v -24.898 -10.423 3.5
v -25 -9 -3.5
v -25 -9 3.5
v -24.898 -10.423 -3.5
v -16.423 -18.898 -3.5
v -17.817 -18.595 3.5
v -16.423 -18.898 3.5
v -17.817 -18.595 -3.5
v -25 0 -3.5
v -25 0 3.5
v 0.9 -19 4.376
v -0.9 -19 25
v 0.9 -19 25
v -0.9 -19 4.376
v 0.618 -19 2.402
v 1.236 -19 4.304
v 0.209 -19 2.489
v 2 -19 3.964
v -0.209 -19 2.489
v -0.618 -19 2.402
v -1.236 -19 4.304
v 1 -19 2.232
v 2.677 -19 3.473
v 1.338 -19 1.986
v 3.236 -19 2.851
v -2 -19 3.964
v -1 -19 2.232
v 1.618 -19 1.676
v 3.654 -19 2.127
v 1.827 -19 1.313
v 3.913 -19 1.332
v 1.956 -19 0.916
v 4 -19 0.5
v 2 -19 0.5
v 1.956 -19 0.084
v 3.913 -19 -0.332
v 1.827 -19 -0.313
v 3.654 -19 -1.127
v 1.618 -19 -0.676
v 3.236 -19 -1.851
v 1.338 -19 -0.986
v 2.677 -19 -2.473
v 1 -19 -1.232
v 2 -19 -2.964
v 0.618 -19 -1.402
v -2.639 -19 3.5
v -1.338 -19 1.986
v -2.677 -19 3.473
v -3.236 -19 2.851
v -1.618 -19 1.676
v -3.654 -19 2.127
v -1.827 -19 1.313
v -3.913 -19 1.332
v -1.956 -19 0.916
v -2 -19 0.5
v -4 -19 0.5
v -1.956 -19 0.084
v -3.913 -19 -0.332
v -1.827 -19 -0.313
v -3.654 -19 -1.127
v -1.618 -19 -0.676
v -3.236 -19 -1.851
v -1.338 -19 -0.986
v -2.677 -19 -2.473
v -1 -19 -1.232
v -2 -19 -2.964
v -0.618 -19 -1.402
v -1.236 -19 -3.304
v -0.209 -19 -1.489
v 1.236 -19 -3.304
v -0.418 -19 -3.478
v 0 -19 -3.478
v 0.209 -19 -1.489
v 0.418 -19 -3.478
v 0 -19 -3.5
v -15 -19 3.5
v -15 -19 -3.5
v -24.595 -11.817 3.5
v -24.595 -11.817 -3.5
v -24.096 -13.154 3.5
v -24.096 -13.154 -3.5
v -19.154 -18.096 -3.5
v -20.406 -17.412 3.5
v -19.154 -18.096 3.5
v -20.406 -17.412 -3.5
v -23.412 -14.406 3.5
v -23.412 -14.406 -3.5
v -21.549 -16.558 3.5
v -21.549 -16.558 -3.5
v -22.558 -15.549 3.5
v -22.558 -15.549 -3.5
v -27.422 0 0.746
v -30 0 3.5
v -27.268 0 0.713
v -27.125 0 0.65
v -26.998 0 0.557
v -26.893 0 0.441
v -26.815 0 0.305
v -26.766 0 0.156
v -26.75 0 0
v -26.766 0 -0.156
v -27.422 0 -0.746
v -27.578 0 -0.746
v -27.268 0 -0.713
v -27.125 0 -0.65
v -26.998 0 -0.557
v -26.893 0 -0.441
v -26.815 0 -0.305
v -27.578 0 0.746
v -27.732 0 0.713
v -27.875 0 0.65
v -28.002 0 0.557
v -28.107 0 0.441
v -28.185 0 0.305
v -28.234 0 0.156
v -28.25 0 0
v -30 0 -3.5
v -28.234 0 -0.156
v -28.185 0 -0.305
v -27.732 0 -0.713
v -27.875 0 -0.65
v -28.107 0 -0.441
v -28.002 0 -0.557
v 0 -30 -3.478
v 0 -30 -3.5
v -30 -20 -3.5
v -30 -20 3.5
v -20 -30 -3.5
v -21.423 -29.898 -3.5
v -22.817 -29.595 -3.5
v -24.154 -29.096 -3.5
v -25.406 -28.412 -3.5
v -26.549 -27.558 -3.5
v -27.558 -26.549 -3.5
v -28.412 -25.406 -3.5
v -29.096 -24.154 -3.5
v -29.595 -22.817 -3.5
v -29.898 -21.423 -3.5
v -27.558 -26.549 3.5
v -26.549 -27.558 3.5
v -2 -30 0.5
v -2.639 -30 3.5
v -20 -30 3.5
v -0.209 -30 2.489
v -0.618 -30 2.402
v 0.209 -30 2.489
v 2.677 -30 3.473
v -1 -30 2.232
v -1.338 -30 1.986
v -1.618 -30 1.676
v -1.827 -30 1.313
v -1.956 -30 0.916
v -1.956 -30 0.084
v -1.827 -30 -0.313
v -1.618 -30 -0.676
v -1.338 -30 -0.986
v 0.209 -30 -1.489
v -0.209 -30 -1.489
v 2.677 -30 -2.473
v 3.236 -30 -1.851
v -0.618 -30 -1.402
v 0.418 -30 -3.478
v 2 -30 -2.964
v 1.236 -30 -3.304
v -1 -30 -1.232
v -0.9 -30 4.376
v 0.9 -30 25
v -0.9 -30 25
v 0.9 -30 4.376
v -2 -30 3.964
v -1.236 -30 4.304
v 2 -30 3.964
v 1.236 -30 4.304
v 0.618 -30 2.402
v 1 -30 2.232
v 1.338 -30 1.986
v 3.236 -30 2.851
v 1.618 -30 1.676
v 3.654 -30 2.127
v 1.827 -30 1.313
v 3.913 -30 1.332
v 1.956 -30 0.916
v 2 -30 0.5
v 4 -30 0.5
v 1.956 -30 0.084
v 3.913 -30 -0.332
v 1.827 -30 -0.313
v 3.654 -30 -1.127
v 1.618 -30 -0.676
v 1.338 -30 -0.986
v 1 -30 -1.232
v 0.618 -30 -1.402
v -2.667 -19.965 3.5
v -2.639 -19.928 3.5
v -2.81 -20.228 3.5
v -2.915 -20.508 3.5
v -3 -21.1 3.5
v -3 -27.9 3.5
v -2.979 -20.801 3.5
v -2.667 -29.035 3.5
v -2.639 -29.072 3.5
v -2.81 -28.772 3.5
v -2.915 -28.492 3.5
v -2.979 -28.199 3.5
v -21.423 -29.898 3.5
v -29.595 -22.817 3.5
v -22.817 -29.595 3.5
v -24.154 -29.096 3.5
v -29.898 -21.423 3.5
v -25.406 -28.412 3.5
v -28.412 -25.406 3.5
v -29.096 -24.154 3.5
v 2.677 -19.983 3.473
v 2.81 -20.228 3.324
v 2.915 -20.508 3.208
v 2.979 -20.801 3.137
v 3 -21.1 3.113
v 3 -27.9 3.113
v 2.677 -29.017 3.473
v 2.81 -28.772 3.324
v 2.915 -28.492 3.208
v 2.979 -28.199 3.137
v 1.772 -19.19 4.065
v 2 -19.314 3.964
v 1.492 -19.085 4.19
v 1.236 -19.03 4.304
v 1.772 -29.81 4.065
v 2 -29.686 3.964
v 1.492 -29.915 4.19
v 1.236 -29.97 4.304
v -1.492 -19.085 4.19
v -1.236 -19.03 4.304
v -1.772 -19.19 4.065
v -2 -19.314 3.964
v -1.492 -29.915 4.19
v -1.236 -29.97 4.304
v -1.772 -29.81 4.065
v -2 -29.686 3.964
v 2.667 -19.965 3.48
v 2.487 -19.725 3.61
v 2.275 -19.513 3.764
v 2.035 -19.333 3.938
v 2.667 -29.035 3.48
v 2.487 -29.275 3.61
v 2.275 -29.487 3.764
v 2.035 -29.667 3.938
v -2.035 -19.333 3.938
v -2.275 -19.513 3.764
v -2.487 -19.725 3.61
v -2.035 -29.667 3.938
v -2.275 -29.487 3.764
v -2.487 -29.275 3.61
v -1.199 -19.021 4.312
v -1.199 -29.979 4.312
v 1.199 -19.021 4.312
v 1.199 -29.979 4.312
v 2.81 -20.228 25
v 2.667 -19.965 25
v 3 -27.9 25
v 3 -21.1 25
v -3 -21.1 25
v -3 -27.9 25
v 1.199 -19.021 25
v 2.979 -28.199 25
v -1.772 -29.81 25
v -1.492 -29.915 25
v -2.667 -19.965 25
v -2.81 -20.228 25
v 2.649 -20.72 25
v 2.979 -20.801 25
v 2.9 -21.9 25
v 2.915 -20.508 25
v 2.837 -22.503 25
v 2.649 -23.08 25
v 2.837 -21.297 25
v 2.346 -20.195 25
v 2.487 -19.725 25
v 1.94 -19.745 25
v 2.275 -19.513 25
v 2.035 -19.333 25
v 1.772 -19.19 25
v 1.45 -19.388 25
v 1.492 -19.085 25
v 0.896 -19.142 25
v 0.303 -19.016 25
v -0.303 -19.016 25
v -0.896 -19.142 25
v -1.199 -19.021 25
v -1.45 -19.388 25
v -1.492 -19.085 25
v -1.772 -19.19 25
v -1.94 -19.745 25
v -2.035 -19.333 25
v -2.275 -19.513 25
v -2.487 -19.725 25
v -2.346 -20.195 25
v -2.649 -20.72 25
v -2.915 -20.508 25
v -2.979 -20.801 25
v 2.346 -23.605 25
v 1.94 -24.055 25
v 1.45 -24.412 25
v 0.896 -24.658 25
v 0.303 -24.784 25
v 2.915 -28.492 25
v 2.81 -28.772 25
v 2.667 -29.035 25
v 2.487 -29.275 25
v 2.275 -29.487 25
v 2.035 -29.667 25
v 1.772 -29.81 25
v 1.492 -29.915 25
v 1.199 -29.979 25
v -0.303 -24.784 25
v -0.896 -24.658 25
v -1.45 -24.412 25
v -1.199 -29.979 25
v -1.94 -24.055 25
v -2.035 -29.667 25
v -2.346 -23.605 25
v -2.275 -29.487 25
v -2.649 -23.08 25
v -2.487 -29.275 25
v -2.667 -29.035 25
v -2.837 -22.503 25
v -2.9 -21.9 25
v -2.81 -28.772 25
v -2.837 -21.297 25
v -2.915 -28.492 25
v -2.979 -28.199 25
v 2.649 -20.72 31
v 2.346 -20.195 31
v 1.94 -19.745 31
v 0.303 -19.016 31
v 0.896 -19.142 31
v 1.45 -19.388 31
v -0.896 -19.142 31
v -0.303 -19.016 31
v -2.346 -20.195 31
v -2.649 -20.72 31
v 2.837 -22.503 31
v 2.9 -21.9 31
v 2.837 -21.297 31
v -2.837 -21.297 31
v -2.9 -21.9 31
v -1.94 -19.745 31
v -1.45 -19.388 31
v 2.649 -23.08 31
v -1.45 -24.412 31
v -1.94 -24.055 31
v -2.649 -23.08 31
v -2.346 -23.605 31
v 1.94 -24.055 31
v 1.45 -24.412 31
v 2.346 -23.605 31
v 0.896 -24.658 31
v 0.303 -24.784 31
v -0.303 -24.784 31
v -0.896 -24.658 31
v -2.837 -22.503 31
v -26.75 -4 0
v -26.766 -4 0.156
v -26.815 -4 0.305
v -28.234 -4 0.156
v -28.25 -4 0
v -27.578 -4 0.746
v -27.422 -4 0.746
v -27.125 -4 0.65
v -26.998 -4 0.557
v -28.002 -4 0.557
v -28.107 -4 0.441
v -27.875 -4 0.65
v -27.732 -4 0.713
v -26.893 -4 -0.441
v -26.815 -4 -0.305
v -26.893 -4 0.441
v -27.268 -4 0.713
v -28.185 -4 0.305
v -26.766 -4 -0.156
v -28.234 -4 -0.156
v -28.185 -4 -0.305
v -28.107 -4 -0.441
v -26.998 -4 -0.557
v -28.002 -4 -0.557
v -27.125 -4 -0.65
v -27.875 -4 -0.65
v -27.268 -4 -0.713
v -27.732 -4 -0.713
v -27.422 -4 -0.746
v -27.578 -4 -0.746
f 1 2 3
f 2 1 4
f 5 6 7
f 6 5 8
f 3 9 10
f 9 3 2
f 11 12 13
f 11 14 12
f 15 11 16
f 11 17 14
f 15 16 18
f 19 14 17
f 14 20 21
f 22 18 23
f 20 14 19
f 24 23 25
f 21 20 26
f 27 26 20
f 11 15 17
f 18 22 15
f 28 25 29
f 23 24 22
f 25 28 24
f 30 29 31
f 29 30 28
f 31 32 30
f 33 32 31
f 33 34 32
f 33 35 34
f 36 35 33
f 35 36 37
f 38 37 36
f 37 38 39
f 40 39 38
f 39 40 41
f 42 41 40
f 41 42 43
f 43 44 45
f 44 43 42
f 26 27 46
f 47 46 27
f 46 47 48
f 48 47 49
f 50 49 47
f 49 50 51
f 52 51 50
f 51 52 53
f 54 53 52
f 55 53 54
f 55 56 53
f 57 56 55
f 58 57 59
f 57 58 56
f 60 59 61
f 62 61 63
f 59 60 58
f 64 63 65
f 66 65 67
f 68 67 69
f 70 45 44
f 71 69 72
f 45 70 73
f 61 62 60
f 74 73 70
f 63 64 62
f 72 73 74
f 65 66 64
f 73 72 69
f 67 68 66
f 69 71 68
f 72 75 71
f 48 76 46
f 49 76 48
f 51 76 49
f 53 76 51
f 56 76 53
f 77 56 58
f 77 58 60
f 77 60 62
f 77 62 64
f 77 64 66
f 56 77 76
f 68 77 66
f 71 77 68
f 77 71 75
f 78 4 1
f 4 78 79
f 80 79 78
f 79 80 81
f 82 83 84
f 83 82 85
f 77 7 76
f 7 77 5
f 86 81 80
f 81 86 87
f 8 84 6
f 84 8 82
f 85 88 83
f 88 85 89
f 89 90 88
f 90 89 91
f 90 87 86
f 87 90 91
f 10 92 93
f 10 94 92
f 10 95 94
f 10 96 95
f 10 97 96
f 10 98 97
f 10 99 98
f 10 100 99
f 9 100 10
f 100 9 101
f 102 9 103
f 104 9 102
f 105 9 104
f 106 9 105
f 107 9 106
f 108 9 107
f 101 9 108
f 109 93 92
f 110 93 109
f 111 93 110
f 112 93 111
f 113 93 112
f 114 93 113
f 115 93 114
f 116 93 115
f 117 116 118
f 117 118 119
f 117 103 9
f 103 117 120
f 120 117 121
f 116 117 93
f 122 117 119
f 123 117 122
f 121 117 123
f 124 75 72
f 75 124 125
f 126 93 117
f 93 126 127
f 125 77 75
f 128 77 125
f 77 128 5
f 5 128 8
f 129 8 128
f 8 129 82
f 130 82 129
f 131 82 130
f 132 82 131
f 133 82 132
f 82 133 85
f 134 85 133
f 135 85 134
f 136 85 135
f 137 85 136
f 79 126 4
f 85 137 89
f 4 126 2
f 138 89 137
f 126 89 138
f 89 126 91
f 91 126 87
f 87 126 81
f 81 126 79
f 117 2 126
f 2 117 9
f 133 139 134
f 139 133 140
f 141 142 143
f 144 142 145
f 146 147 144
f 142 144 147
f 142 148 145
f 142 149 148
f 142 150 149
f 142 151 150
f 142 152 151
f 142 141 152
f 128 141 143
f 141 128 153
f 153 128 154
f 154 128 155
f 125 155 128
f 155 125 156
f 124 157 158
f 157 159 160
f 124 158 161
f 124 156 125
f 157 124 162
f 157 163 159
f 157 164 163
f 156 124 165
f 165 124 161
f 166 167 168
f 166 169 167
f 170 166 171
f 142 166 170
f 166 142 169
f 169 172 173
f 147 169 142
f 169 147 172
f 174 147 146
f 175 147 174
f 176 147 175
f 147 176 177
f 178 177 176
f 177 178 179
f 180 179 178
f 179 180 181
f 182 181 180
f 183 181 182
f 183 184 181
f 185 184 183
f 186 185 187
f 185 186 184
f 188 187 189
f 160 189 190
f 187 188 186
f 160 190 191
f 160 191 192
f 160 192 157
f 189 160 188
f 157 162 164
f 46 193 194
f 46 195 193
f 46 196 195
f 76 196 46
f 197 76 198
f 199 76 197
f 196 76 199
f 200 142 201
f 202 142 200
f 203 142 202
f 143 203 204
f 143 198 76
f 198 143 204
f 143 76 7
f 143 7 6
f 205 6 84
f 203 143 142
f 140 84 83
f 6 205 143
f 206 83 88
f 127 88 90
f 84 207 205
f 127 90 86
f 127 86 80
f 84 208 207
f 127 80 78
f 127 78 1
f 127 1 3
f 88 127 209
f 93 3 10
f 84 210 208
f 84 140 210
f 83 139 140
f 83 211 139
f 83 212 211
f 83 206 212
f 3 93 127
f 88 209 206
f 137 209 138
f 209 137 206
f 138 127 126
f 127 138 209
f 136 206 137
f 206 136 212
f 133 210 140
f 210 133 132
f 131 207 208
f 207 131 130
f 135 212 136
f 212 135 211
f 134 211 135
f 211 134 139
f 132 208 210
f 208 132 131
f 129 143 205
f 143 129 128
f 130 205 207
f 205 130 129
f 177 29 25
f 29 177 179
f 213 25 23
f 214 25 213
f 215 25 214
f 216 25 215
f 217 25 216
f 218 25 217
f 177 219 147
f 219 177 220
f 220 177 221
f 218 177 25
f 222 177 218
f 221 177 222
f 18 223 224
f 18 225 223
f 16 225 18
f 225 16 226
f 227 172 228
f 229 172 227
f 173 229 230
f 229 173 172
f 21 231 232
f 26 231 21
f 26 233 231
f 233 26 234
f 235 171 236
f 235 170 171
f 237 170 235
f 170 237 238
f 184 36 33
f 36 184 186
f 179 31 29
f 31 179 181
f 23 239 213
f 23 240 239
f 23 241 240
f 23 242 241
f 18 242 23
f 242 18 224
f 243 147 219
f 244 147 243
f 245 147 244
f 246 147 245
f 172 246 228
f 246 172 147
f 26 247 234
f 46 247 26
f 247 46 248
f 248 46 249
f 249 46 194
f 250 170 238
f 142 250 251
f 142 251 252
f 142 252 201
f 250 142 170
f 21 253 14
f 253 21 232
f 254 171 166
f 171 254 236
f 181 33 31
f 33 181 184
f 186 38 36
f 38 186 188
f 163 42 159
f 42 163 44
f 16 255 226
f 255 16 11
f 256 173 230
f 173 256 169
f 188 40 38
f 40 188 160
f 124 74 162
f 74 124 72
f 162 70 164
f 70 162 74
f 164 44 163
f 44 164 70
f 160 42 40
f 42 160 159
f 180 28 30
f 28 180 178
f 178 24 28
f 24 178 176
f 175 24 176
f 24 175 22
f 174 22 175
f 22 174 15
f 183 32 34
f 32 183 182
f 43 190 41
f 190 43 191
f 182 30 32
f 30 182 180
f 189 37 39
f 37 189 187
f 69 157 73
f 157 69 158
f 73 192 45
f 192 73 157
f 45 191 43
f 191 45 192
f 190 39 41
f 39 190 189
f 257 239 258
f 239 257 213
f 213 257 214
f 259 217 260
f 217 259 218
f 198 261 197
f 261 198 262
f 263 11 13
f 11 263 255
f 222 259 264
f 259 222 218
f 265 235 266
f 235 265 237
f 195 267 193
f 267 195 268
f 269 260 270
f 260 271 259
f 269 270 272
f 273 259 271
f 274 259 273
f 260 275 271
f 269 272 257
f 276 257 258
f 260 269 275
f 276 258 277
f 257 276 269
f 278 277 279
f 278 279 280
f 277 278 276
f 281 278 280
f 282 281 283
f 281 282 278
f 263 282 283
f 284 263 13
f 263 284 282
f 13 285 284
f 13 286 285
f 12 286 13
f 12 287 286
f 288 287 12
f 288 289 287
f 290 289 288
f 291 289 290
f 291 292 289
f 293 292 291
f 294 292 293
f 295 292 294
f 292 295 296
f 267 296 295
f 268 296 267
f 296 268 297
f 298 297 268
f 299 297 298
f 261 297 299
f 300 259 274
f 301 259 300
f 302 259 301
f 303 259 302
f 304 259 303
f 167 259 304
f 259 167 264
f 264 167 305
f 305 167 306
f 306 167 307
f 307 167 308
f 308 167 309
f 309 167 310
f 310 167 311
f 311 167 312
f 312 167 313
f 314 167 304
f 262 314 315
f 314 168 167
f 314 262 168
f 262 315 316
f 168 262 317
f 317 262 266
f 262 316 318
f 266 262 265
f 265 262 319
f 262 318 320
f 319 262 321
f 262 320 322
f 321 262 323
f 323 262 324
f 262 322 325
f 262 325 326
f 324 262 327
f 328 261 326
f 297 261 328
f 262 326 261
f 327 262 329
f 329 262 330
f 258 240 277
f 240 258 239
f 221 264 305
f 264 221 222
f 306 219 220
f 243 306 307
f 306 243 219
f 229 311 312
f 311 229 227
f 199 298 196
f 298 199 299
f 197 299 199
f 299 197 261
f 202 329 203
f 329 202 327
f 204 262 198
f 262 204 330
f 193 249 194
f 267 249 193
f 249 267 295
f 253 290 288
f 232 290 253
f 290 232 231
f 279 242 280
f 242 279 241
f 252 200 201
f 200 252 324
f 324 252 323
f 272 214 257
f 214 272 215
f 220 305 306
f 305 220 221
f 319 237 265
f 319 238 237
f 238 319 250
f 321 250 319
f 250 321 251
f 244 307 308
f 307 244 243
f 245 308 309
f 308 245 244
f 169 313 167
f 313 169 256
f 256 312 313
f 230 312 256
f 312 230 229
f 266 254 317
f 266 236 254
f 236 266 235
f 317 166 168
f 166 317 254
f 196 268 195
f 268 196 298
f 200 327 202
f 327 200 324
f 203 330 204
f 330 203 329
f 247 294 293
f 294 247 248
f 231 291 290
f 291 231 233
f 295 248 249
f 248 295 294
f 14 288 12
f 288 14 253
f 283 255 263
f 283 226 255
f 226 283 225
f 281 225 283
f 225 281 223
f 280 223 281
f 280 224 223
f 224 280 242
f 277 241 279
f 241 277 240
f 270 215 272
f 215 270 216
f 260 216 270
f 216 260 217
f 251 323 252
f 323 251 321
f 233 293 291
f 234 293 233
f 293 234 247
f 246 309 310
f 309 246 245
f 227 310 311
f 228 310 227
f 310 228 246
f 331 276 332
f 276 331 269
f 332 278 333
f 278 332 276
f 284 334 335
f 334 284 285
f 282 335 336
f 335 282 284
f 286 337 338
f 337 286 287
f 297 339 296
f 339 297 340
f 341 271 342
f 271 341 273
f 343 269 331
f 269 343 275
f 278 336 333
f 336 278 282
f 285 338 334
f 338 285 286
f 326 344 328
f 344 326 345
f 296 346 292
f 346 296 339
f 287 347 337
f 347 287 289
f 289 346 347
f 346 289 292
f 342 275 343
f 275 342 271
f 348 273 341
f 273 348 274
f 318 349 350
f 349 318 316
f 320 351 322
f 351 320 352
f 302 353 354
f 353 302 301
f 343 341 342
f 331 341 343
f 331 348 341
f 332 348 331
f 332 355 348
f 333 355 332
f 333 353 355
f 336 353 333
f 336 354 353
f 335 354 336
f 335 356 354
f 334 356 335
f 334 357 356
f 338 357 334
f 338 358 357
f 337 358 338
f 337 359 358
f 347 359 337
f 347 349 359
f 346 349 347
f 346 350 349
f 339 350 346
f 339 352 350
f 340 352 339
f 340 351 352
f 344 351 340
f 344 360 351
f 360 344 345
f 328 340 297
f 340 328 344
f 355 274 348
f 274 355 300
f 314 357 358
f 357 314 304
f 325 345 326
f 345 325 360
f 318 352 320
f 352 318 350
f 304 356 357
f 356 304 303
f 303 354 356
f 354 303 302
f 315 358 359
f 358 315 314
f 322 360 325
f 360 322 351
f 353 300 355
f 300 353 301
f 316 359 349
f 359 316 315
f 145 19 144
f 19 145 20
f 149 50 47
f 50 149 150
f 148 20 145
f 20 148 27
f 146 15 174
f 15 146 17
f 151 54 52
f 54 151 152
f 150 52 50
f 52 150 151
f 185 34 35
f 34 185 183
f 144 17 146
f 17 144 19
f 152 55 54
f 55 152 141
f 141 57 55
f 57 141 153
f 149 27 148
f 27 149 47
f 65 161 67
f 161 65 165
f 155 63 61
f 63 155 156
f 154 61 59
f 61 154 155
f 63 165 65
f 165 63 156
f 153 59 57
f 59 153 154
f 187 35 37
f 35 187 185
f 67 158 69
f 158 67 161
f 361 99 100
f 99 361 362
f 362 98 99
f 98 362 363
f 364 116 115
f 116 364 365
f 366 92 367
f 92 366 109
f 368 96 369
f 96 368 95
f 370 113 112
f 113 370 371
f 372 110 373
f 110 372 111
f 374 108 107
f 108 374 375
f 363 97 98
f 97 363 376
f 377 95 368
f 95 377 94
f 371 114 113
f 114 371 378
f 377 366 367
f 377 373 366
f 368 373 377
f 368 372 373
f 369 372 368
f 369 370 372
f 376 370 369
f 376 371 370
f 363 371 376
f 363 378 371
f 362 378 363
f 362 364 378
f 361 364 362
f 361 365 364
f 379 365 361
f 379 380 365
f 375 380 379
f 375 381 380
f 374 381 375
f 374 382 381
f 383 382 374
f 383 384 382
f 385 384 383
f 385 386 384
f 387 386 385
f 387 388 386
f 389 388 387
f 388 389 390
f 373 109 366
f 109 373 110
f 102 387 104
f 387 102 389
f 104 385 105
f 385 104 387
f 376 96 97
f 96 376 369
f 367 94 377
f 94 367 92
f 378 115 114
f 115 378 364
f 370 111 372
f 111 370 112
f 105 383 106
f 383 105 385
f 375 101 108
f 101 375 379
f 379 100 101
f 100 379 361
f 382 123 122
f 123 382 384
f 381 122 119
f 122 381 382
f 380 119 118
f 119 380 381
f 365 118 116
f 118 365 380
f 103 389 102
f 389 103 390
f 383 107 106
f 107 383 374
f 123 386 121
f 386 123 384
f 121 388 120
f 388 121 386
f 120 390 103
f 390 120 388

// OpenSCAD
module bcube(size,cr=0,cres=0)
{
  //-- Internal cube size
  bsize = size - 2*[cr,cr,0];

  //-- Get the (x,y) coorner coordinates in the 1st cuadrant
  x = bsize[0]/2;
  y = bsize[1]/2;

  //-- A corner radius of 0 means a standar cube!
  if (cr==0)
    cube(bsize,center=true);
  else {

      
      //-- The height of minkowski object is double. So
      //-- we sould scale by 0.5
      scale([1,1,0.5])

      //-- This translation is for centering the minkowski objet
      translate([-x, -y,0])

      //-- Built the  beveled cube with minkowski
      minkowski() {

        //-- Internal cube
        cube(bsize,center=true);

        //-- Cylinder in the corner (1st cuadrant)
        translate([x,y, 0])
          cylinder(r=cr, h=bsize[2],center=true, $fn=4*(cres+1));
      }
  }

}


//----------------------
low_bar = 11;
left_bar = 5;
r1 = 4;
r2 = 2;
r3 = 1.5/2;
h = 25;
t = 6;
r_join = 5.8/2;
translate([0,0,0])
difference(){
union()
{
    difference(){
      bcube([60,60,7],cr=10, cres=10);
      union(){
      bcube([60-left_bar*2,60-low_bar*2,9],cr=10,cres=10);
      translate([-50,0,-10])
          cube([80,50,20]);
      translate([0,-50,-10])
          cube([80,80,20]);
      }
    }
    translate([0,-30+low_bar*0.5,0.5])
        rotate([90,0,0]){
            difference(){
            cylinder(low_bar,r1,r1,true,$fn=30);
            cylinder(low_bar+2,r2,r2,true,$fn=30); 
            }
        }
    translate([0,-30+0.5*low_bar,h/2])
        bcube([t,11,h],cr=2.1, cres=10);
    translate([0,-30+low_bar-r_join,h])
        cylinder(6,r_join,r_join,false,$fn=30);
}
translate([0,-30+low_bar*0.5,0.5])
        rotate([90,0,0]){
            cylinder(low_bar+2,r2,r2,true,$fn=30); 
        }
translate([-30+left_bar*0.5,0])
        rotate([90,0,0]){
            cylinder(8,r3,r3,true,$fn=30); 
        }
}
